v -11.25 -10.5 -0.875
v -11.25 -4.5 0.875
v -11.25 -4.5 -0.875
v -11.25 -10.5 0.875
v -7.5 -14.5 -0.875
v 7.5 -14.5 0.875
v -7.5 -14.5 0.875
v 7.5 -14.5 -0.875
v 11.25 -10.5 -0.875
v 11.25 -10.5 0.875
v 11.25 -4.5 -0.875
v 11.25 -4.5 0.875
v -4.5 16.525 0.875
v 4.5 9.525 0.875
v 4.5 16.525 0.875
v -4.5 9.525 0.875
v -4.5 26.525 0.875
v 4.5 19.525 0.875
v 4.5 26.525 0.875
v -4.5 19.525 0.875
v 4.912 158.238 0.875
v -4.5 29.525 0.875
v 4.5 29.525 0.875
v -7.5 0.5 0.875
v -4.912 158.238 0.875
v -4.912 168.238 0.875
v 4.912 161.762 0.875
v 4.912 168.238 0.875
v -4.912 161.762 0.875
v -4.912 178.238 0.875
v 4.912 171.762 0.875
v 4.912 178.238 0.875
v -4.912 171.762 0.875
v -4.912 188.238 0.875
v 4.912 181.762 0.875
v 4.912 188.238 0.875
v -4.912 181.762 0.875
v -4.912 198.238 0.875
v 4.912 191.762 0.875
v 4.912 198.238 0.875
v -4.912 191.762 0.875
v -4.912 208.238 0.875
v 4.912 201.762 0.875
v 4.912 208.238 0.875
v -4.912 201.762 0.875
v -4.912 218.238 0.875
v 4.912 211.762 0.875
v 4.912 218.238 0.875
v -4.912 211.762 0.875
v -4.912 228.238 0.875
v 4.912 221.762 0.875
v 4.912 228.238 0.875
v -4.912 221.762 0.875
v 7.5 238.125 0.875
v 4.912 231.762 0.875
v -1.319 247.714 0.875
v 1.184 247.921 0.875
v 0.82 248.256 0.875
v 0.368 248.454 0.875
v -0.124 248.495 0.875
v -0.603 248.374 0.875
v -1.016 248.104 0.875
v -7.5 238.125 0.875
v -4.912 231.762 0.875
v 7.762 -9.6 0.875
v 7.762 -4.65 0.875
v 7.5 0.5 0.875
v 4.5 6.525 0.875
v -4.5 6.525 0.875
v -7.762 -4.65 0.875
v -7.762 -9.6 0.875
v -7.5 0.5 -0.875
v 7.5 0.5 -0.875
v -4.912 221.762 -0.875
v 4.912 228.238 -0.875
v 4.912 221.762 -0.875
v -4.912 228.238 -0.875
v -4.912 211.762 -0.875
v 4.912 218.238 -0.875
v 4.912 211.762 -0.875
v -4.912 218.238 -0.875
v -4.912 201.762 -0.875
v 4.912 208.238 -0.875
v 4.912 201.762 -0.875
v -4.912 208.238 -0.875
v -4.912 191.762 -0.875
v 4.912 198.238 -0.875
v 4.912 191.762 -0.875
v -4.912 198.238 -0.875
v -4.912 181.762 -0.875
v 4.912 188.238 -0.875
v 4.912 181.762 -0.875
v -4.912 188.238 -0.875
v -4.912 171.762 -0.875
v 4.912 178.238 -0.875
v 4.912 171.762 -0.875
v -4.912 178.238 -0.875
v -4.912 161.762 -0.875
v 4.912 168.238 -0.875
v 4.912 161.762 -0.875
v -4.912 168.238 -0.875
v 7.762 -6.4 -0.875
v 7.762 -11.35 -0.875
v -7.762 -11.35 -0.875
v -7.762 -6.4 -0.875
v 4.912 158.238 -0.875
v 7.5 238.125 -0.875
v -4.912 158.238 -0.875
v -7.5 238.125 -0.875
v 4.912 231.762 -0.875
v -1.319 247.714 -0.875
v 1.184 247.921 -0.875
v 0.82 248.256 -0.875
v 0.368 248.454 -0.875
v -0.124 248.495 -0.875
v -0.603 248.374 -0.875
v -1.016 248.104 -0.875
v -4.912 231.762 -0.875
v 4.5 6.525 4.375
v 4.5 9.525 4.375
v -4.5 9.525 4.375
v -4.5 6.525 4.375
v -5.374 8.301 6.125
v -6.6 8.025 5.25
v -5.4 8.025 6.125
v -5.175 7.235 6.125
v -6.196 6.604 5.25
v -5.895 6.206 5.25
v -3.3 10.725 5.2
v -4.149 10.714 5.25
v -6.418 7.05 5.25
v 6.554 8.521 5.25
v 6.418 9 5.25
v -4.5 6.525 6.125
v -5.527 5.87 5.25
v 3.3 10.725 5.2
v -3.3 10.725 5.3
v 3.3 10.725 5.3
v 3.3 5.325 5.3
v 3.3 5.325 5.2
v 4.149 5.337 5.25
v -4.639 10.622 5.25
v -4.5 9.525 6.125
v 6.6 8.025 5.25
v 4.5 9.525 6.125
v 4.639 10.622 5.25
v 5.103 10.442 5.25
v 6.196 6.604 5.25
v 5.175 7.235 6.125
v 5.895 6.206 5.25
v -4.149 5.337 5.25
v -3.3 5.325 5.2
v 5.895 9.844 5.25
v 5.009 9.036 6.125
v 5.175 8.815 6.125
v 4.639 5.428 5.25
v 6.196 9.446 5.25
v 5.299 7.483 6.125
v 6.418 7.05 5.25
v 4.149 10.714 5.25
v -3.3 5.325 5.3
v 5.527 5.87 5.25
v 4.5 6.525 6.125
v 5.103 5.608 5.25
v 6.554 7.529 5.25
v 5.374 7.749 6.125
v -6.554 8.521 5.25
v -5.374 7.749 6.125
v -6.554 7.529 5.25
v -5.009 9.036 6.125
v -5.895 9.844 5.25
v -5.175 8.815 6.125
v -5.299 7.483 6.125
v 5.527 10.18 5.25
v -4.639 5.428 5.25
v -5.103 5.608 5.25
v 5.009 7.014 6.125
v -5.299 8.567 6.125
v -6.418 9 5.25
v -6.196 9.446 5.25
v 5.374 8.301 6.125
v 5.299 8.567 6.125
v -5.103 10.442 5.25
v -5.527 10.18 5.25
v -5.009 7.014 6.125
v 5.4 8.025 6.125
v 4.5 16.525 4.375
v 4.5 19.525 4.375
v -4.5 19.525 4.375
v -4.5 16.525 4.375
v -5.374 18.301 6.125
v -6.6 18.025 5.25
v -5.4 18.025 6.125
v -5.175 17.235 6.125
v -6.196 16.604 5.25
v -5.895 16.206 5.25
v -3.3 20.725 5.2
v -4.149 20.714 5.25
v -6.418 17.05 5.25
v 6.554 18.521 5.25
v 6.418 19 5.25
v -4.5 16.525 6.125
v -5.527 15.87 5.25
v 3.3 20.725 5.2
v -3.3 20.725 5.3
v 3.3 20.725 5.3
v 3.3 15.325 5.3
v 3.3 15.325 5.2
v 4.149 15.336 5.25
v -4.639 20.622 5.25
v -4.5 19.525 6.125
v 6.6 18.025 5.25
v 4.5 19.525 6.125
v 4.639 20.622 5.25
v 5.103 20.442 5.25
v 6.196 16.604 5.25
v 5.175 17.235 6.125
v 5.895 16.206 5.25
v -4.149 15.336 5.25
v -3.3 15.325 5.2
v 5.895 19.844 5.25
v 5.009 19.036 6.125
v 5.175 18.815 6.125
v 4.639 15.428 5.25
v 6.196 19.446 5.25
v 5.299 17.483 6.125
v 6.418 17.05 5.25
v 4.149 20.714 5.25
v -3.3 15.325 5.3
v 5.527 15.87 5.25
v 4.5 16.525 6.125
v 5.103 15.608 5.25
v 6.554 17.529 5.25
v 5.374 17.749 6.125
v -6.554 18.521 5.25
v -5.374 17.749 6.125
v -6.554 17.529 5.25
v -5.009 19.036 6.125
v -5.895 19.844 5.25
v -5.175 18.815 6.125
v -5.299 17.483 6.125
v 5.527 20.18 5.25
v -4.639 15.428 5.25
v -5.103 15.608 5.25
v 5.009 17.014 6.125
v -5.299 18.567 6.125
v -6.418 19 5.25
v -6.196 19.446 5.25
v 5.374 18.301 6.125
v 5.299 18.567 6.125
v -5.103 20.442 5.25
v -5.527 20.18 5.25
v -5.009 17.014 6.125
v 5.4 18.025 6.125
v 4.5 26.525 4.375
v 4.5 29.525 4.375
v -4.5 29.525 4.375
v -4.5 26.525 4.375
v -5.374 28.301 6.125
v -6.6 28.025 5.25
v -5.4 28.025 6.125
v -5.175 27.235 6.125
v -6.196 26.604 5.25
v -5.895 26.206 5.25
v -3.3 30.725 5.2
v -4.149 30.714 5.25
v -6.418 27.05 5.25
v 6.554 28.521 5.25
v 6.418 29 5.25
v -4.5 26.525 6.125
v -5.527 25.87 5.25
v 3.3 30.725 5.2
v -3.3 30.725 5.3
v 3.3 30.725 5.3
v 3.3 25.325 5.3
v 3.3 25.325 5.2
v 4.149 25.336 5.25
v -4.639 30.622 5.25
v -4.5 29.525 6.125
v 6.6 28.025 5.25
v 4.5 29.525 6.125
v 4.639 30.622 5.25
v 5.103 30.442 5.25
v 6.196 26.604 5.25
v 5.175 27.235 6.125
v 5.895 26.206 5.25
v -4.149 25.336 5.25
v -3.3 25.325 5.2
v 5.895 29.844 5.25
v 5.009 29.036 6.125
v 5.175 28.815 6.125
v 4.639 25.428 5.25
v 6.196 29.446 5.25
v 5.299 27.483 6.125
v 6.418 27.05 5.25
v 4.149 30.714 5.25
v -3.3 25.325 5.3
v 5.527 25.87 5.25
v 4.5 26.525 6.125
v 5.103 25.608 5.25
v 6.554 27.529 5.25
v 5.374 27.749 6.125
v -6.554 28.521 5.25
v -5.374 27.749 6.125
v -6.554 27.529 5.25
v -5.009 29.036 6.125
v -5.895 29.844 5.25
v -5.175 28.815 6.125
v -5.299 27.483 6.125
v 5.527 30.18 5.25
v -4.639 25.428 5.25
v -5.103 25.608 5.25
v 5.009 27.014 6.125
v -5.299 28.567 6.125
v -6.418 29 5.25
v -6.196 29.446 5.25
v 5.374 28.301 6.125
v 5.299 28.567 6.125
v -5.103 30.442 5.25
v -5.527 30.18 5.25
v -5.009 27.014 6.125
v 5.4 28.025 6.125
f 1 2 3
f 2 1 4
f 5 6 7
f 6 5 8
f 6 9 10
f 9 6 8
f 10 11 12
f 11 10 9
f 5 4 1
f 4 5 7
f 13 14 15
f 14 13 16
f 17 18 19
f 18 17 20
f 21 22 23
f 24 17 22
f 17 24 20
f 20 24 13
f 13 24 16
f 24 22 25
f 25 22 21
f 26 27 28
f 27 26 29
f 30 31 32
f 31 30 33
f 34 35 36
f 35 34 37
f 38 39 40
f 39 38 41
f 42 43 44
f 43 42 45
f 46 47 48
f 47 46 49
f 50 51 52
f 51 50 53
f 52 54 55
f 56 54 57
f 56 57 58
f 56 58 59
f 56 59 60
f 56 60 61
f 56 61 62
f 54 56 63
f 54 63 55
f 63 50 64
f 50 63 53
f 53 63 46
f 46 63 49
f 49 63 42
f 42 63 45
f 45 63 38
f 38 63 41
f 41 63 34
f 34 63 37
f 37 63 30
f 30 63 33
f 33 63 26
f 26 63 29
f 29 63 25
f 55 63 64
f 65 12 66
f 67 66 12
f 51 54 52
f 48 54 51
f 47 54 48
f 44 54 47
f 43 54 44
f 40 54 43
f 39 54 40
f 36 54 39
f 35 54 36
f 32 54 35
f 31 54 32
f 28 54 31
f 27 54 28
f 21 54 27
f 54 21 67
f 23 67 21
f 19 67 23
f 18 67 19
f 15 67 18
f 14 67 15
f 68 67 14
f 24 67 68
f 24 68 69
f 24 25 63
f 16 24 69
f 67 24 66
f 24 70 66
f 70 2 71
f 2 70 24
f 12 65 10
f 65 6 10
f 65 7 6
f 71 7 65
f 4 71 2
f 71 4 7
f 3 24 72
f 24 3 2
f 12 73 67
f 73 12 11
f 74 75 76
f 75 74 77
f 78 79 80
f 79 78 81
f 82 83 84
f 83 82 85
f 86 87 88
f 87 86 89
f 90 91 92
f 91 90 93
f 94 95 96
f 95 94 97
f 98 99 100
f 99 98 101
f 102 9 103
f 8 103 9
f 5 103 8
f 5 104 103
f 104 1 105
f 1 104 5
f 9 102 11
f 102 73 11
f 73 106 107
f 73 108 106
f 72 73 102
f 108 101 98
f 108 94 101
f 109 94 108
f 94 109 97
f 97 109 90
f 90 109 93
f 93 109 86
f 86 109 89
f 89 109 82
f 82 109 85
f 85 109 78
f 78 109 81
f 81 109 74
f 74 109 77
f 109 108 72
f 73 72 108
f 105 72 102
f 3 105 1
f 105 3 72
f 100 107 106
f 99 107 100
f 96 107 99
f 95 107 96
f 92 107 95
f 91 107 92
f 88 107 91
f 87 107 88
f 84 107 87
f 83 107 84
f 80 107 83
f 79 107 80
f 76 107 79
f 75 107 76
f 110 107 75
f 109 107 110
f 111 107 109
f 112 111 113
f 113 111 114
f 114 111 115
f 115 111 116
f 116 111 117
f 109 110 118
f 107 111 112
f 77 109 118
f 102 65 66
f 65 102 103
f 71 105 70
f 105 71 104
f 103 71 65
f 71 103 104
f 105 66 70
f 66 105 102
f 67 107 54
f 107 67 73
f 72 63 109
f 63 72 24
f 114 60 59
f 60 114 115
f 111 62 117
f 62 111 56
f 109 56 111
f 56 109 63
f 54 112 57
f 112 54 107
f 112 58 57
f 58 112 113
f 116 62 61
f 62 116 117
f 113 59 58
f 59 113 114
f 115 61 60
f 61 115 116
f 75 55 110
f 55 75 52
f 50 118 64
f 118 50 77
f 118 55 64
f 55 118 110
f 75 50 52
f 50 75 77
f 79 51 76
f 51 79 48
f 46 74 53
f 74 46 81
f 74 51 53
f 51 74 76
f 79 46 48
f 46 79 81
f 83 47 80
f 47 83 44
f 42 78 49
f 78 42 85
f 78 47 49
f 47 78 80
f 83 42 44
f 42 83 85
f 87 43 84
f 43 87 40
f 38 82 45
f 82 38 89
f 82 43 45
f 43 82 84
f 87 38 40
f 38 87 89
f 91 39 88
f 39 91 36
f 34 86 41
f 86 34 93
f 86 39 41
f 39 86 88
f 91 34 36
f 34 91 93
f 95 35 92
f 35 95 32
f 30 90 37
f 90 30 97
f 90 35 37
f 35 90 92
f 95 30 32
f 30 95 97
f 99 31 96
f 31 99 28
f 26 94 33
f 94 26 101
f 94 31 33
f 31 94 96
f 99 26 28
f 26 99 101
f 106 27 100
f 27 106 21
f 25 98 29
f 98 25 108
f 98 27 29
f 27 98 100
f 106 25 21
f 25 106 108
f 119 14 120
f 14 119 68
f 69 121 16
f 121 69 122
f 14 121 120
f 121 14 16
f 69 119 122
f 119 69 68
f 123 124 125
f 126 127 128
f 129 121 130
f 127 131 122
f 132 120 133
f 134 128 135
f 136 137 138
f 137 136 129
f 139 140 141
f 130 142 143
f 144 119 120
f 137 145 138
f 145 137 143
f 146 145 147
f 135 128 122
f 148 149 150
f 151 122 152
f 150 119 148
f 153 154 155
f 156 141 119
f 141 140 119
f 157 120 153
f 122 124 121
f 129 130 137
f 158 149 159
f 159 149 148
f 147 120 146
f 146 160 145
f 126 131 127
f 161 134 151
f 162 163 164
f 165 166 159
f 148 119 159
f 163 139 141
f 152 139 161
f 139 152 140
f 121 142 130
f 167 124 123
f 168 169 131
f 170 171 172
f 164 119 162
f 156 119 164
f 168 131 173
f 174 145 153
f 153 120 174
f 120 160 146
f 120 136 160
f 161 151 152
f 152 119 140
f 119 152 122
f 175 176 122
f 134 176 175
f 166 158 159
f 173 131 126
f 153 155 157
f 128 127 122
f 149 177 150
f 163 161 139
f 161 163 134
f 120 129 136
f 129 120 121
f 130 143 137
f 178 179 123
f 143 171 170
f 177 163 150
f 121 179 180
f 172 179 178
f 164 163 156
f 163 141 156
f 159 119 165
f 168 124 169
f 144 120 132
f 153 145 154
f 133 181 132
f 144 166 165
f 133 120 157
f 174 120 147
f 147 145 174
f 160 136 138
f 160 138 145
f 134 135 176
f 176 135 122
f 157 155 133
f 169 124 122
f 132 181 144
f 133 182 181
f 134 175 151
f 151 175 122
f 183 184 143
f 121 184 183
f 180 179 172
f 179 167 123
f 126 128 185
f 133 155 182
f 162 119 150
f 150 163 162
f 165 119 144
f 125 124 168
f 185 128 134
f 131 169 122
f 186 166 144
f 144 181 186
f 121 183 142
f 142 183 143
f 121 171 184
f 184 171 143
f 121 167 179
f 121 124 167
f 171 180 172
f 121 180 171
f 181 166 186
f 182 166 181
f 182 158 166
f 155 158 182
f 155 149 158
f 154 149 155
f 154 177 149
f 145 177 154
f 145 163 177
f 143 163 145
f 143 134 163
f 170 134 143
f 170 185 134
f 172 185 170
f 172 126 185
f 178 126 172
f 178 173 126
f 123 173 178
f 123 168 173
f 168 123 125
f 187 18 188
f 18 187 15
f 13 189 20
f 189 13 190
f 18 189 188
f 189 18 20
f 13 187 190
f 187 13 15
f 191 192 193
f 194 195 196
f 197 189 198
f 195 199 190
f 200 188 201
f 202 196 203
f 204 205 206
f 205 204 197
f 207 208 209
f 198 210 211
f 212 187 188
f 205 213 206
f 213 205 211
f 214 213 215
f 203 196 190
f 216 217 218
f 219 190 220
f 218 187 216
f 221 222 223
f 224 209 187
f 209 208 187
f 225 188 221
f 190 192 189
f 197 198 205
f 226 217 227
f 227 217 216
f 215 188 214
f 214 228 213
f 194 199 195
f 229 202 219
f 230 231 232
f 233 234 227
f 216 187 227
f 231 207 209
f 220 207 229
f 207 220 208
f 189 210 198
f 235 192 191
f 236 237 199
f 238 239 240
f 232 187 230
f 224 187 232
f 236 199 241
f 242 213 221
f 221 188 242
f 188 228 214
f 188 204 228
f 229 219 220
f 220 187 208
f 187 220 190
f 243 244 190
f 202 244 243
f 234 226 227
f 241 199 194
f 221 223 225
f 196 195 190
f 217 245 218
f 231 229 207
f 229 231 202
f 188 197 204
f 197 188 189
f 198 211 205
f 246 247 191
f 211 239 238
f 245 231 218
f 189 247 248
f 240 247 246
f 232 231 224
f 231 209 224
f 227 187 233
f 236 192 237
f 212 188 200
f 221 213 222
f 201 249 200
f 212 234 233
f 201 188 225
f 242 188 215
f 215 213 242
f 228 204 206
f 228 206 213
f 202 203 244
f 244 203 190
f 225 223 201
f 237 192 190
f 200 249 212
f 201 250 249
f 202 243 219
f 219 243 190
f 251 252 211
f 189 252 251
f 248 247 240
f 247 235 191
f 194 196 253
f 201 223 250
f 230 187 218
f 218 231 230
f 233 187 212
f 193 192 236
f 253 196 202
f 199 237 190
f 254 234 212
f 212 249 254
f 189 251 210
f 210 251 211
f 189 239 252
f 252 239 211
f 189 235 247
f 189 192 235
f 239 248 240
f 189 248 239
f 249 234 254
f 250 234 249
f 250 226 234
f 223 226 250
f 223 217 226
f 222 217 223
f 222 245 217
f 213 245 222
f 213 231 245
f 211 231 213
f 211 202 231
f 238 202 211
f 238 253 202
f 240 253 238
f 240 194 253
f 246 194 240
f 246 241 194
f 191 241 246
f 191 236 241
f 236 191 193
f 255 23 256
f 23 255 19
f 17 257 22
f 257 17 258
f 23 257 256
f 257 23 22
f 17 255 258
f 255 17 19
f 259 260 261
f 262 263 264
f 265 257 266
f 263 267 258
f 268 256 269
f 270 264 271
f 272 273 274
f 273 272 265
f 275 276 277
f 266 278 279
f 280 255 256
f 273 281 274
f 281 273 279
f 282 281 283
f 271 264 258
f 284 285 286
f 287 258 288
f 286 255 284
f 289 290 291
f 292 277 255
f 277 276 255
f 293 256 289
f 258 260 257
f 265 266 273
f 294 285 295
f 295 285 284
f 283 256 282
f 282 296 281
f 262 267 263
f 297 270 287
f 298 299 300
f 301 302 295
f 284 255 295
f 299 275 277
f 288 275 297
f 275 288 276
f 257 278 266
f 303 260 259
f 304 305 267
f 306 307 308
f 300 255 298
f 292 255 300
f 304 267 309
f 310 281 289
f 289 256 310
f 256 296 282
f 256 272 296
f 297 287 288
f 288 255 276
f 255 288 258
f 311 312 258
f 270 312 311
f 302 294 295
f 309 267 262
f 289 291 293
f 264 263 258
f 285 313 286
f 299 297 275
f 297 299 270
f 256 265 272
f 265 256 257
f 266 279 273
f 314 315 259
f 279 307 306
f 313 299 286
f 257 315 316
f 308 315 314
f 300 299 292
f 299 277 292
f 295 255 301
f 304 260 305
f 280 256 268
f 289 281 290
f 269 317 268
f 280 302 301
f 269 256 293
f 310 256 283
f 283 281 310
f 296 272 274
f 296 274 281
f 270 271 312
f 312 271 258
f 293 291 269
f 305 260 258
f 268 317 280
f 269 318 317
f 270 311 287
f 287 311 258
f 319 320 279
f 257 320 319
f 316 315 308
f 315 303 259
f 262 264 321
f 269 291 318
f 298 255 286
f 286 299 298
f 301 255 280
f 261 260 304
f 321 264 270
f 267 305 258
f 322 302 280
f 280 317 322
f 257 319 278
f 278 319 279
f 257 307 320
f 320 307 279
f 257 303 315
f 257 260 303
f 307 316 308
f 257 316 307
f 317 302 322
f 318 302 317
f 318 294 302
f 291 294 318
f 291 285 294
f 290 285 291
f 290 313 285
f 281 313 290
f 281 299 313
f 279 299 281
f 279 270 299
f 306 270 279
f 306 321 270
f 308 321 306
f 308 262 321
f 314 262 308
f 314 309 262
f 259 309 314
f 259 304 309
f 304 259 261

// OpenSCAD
// file: lipo_strap.scad
button_width = strap_width * 0.6;
button_thickness = button_width / 3;
button_leg_height = strap_thickness * 2;
button_head_height = strap_thickness;
button_head_length = strap_width;
button_head_offset = 1.2;
button_space = 10;
buttons = 3;
button_holes = 8;


$fs = $preview ? 1 : 0.5;
$fa = $preview ? 10 : 5;

anti_warp = .15;
filament_width = 1.75;

function anti_warp_widen(v) = v + (filament_width * anti_warp) * 2;
function anti_warp_shrink(v) = v - (filament_width * anti_warp) * 2;

module tail() {
}

module button_head() {
	hull() {
		cube([button_width, button_thickness, button_head_height], center = true);
		cube([button_width - button_head_offset * 2, button_thickness + 2 * button_head_offset, 0.1], center = true);
		translate([button_width / 2 - button_head_offset / 2, 0]) cylinder(h = button_head_height / 2, d1 = button_thickness + 2 * button_head_offset, d2 = button_thickness);
		translate([-button_width / 2 + button_head_offset / 2, 0]) cylinder(h = button_head_height / 2, d1 = button_thickness + 2 * button_head_offset, d2 = button_thickness);
	}
}

module button_leg() {
	cube([button_width, button_thickness, button_leg_height], center = true);
}

module button() {
	translate([0, 0, button_leg_height / 2]) {
		button_leg();
		translate([0, 0, button_leg_height / 2 + button_head_height / 2]) button_head();
	}
}

module button_hole() {
	cube([anti_warp_widen(button_width + button_head_offset * 0.25), anti_warp_widen(button_thickness), strap_thickness], center = true);
}

module generate_buttons(count) {
	assert(count != undef);
	for (i = [0:count-1]) {
		translate([0, anti_warp_widen(button_space * i), 0]) button();
	}
}

module generate_button_holes(count) {
	assert(count != undef);
	for (i = [0:count-1]) {
		translate([0, -button_space * i]) button_hole();
	}
}

module tailtip(length) {
	hull() {
		cube([strap_width, length * 0.1, strap_thickness], center = true);
		translate([0, length - (strap_width / 5)]) cylinder(h = strap_thickness, d = strap_width / 5, center = true);
	}
}

module tail() {
	difference() {
		union() {
			translate([0, strap_length * 0.95 / 2]) cube([strap_width, strap_length * 0.95, strap_thickness], center = true);
			translate([0, strap_length * 0.95]) tailtip(strap_length * 0.05);
		}
		translate([0, strap_length * 0.92]) generate_button_holes(button_holes);
	}
	translate([0, strap_length * 0.03, strap_thickness / 2]) generate_buttons(buttons);
}

module strap_hole() {
	cube([anti_warp_widen(strap_width), strap_thickness * 2, button_head_length], center = true);
}

module head() {
	difference() {
		hull() {
			cube([strap_width, 1, strap_thickness], center = true);
			translate([0, strap_width * 1/3]) cube([strap_width * 1.5, 1, strap_thickness], center = true);
			translate([0, strap_width * 2/3]) cube([strap_width * 1.5, 1, strap_thickness], center = true);
			translate([0, button_head_length - 1]) cube([strap_width, 1, strap_thickness], center = true);
		}
		translate([0, button_head_length / 2 + 0.5]) rotate([45, 0]) strap_hole();
	}
}

module main() {
	rotate([0, 0, 180]) head();
	tail();
}

main();
// main file
strap_length = 250; // 25cm 
strap_width = 15; // 1.5cm
strap_thickness = 1.75;

include <lipo_strap.scad>
